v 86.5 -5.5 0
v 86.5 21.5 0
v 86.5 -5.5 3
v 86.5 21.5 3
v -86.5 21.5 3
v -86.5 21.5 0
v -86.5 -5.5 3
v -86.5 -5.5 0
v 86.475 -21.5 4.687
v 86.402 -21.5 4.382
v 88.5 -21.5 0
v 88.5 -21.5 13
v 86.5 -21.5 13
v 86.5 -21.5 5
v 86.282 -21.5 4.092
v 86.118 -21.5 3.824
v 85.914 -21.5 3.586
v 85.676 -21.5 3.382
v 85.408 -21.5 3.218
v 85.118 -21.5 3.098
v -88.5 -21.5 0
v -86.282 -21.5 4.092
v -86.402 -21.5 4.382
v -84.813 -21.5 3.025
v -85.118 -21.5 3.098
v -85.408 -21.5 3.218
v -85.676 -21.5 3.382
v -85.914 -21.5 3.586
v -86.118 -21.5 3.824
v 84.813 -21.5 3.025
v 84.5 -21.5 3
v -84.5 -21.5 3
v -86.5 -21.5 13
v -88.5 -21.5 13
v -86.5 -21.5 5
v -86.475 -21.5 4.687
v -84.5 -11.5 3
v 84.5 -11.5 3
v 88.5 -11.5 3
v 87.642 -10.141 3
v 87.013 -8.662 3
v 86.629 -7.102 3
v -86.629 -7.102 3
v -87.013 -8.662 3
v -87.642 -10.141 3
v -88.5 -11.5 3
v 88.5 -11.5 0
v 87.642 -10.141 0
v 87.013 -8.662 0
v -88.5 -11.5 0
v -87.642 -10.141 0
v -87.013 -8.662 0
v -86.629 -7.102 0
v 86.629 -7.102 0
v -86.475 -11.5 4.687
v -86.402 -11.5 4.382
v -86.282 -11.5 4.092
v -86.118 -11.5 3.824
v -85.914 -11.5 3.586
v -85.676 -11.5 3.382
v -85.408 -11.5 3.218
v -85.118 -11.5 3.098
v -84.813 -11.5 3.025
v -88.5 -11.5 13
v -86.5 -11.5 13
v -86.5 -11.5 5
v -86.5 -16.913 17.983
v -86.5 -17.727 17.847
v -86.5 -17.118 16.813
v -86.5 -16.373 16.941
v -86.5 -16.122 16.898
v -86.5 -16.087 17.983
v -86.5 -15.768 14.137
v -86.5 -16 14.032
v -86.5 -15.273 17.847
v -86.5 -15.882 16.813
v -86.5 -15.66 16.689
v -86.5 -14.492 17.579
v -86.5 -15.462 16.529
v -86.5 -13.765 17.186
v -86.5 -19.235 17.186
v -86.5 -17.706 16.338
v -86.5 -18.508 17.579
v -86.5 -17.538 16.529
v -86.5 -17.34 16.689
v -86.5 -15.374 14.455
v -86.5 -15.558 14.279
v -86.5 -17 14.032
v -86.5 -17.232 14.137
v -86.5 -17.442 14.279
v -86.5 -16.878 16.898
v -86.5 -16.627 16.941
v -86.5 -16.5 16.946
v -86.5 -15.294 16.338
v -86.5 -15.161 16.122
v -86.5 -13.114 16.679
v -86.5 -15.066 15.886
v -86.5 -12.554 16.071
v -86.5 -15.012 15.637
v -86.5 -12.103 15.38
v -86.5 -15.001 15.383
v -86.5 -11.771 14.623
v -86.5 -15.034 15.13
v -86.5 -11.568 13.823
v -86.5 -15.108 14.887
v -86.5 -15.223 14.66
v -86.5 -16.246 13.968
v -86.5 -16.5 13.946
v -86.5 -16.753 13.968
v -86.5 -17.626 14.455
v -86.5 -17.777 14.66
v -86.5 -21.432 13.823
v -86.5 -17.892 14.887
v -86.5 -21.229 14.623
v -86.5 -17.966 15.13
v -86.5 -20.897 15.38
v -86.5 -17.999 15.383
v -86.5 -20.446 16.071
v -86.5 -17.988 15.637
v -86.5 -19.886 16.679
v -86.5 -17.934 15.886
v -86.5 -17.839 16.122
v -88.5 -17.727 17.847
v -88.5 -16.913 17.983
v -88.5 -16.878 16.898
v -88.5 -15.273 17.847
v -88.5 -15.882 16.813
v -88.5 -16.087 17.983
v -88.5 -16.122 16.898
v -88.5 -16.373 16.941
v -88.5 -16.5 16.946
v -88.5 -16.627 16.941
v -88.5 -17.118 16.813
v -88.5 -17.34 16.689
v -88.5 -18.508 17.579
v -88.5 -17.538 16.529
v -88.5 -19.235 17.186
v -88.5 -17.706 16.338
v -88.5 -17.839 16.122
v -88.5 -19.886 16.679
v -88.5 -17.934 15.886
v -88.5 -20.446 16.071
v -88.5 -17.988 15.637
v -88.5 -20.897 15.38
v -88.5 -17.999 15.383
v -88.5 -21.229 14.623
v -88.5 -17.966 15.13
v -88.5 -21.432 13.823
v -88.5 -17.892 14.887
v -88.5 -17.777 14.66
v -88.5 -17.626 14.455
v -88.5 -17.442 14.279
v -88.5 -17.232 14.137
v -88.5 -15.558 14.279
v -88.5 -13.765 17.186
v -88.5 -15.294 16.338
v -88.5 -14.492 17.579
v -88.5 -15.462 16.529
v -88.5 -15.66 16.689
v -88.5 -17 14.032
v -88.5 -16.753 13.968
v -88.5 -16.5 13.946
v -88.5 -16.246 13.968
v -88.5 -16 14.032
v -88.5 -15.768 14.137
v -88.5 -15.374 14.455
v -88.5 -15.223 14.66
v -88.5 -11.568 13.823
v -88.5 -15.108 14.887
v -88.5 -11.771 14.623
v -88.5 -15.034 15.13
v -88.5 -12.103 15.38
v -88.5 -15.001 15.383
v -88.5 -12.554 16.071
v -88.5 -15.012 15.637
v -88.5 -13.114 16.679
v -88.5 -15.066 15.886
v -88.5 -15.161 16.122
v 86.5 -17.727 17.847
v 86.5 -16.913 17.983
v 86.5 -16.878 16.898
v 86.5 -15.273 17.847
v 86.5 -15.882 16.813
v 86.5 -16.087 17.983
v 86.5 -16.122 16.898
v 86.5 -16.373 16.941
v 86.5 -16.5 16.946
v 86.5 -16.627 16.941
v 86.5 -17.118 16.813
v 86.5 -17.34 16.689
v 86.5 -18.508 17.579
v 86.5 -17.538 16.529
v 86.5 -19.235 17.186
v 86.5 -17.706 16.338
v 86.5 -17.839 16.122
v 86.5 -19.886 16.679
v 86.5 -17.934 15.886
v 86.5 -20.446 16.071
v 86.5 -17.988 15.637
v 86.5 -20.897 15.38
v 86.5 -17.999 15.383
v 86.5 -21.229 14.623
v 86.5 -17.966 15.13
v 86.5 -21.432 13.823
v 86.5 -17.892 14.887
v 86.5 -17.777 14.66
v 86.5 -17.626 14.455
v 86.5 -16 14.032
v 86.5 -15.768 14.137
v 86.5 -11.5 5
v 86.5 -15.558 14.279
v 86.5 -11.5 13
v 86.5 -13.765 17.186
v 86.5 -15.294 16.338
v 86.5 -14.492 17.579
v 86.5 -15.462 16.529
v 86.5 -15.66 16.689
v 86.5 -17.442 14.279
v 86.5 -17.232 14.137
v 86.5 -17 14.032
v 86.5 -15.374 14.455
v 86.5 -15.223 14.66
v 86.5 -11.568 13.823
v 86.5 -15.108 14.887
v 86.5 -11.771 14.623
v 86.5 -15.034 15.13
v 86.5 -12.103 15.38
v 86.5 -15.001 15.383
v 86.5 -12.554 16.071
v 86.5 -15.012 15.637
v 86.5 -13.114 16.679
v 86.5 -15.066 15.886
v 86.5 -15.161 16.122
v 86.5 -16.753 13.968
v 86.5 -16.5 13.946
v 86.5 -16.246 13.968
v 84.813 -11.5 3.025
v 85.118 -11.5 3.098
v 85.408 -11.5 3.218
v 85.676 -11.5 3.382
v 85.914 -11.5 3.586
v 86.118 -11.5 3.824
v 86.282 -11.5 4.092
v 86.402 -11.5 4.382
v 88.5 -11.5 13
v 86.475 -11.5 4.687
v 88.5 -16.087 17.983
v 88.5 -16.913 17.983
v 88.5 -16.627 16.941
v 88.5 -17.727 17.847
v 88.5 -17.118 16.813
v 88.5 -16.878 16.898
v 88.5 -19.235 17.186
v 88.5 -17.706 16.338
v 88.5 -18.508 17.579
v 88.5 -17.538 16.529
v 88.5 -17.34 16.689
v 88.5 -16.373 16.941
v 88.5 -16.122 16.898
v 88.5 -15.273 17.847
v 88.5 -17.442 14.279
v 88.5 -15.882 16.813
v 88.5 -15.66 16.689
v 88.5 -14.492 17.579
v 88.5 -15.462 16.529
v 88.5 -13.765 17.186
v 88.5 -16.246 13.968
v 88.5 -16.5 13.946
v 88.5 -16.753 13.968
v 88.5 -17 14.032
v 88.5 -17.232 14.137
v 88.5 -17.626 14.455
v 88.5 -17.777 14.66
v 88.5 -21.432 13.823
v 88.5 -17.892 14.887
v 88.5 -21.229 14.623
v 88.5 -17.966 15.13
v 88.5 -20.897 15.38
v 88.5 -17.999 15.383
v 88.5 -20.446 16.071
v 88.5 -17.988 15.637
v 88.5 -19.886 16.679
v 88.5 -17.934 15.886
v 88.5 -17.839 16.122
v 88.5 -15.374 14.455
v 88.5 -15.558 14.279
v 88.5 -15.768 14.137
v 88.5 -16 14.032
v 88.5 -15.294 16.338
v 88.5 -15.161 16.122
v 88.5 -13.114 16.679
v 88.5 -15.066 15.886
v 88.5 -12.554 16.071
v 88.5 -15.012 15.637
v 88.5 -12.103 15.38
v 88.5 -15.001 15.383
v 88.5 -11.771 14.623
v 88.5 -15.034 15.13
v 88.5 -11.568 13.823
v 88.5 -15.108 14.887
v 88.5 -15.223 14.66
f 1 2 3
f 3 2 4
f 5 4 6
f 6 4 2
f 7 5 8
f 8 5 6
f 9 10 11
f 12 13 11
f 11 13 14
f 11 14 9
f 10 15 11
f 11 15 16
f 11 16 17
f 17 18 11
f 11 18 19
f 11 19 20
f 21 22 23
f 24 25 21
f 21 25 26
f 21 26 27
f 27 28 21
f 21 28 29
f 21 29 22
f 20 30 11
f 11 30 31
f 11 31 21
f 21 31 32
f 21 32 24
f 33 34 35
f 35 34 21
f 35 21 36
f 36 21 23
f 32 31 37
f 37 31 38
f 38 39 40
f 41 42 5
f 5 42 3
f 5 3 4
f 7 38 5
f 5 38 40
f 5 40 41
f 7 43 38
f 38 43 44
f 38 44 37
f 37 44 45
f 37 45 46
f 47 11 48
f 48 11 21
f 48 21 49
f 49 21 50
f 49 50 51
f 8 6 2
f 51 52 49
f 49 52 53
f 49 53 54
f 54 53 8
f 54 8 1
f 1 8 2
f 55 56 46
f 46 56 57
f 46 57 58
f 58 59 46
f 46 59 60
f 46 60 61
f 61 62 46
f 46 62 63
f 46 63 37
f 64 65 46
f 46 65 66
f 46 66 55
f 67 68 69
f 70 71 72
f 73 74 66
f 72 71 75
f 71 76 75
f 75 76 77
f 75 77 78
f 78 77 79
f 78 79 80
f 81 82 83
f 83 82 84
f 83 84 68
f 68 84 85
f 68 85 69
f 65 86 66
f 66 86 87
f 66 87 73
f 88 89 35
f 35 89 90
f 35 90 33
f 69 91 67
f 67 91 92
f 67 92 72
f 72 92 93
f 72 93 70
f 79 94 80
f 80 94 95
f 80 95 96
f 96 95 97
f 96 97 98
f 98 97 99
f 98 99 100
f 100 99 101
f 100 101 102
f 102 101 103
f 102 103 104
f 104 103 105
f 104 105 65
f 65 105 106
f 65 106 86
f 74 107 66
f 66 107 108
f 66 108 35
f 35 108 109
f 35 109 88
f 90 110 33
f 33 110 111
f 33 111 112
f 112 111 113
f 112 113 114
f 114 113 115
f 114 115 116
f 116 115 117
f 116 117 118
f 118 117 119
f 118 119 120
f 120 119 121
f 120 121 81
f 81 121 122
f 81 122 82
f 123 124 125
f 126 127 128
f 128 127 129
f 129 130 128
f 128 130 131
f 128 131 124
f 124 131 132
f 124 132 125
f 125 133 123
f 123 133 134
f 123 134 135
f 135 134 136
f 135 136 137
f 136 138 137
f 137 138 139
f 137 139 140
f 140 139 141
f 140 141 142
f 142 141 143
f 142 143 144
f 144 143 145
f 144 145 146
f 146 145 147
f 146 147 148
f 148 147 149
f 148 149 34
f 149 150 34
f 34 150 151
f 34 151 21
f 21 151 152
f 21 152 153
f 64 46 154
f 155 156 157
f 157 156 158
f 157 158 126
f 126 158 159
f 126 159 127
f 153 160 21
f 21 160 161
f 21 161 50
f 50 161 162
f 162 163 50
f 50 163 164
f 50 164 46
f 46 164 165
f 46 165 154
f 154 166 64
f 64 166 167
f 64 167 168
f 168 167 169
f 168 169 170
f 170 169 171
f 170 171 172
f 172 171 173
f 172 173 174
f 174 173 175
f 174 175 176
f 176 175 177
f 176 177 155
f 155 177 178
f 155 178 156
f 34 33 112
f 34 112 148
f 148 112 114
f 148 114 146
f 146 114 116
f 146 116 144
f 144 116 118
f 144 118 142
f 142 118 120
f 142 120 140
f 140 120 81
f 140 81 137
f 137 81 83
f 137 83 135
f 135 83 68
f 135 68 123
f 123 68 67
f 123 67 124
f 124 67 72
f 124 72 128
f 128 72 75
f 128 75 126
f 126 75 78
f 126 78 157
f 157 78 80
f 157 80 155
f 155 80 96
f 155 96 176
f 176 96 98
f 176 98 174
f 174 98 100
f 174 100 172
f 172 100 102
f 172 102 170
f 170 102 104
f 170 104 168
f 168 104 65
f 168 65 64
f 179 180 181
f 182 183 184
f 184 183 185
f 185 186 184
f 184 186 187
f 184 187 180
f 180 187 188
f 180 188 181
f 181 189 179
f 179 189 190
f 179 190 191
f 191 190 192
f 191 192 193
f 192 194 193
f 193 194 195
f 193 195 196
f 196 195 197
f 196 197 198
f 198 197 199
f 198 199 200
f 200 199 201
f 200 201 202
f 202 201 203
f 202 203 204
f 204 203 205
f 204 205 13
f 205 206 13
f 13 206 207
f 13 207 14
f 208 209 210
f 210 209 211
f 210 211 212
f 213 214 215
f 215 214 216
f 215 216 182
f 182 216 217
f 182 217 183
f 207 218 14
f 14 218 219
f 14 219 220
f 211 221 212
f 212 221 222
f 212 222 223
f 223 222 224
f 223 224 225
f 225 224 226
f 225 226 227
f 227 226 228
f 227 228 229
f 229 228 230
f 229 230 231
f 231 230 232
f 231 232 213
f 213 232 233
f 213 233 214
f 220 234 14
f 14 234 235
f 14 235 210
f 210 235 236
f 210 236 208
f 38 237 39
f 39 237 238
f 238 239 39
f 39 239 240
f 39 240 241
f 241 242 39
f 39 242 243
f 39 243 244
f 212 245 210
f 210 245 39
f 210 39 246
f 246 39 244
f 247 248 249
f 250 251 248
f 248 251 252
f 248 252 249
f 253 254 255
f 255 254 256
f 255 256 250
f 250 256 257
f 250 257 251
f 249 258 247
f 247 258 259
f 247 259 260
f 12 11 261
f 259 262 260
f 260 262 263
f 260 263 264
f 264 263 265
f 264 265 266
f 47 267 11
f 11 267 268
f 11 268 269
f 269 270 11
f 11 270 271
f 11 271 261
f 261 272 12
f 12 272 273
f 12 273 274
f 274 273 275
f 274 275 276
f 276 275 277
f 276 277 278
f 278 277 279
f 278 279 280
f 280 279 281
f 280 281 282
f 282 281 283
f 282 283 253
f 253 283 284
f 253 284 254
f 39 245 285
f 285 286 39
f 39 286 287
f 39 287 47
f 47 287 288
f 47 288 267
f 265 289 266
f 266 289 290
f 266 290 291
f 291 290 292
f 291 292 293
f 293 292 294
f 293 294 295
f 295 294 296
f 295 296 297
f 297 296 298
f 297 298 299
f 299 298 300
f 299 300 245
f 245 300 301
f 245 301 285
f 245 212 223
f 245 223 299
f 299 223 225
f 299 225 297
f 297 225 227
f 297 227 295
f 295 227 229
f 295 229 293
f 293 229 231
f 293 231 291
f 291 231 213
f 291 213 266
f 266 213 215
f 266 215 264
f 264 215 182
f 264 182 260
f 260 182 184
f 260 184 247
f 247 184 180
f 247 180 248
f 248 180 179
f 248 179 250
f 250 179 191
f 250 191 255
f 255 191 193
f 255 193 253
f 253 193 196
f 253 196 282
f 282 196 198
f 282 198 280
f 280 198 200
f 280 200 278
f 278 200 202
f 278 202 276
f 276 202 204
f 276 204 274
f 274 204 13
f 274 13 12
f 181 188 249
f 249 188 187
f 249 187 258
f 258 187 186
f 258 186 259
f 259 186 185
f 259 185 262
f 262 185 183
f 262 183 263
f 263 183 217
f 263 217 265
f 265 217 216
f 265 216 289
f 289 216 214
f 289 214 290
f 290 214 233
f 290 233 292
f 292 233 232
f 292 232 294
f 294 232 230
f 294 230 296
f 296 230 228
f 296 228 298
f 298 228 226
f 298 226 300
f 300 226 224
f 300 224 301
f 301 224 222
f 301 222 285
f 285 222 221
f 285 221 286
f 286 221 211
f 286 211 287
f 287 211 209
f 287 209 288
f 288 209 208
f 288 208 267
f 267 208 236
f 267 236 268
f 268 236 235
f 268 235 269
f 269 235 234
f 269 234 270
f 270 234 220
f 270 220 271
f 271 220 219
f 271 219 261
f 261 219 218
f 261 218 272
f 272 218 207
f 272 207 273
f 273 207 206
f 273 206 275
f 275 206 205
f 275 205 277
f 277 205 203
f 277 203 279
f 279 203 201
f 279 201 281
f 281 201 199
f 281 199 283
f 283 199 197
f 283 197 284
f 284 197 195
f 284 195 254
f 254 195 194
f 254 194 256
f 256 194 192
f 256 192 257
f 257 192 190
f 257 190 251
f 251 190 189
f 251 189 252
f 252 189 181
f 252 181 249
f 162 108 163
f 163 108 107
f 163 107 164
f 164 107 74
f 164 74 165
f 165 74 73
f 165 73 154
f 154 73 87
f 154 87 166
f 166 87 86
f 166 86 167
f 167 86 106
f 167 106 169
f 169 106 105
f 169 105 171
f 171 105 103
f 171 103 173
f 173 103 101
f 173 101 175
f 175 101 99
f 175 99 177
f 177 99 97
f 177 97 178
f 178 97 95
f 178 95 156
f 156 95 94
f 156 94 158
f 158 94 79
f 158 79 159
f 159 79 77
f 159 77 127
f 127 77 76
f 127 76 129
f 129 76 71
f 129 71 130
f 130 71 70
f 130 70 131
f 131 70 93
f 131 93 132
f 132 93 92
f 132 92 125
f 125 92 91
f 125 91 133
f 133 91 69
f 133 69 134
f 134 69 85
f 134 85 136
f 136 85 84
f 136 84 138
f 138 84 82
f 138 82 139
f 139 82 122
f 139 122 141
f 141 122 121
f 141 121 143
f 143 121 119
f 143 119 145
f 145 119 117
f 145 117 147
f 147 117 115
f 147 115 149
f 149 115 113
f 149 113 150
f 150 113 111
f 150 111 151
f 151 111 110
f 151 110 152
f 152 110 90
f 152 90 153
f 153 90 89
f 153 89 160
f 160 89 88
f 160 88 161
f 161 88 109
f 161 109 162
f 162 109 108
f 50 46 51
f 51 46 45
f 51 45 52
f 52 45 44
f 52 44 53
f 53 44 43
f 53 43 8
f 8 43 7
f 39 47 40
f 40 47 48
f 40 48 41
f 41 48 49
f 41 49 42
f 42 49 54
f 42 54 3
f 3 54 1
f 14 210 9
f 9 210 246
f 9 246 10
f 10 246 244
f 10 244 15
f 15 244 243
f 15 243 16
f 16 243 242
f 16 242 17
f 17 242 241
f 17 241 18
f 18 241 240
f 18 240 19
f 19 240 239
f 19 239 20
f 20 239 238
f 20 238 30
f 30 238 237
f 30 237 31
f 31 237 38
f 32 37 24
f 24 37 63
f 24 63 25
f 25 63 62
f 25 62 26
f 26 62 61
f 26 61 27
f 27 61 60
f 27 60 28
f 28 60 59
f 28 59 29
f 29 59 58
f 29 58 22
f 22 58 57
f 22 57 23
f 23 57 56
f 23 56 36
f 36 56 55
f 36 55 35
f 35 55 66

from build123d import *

# Parameters (mm, degrees)
SKETCH1_W           = 173
SKETCH1_H           = 43
BOSS_EXTRUDE1_DEPTH = 3
SKETCH2_R           = 5
SKETCH2_W           = 13
SKETCH2_H           = 10
BOSS_EXTRUDE2_DEPTH = 2
BOSS_EXTRUDE3_START = 2
SKETCH3_R           = 5
SKETCH3_W           = 13
SKETCH3_H           = 10
BOSS_EXTRUDE3_DEPTH = 2
SKETCH4_R           = 1.5
CUT_EXTRUDE1_DEPTH  = 200
FILLET1_R           = 10
FILLET2_R           = 2


with BuildPart() as part:
    # Sketch1 → Boss-Extrude1 (new body)
    with BuildSketch(Plane.XY):
        Rectangle(SKETCH1_W, SKETCH1_H)
    extrude(amount=BOSS_EXTRUDE1_DEPTH)

    # Sketch2 → Boss-Extrude2 (add)
    with BuildSketch(Plane.ZY.offset(86.5)):
        with Locations((13, -16.5)):
            Circle(SKETCH2_R)
        with Locations((6.5, -16.5)):
            Rectangle(SKETCH2_W, SKETCH2_H)
    extrude(amount=BOSS_EXTRUDE2_DEPTH)

    # Sketch3 → Boss-Extrude3 (add)
    with BuildSketch(Plane(origin=(86.5, 0, 0), x_dir=(0, 0, -1), z_dir=(1, 0, 0)).offset(BOSS_EXTRUDE3_START)):
        with Locations((-13, -16.5)):
            Circle(SKETCH3_R)
        with Locations((-6.5, -16.5)):
            Rectangle(SKETCH3_W, SKETCH3_H)
    extrude(amount=-BOSS_EXTRUDE3_DEPTH)

    # Sketch4 → Cut-Extrude1 (cut)
    with BuildSketch(Plane(origin=(88.5, 0, 0), x_dir=(0, 0, -1), z_dir=(1, 0, 0))):
        with Locations((-15.446473159, -16.5)):
            Circle(SKETCH4_R)
    extrude(amount=-CUT_EXTRUDE1_DEPTH, mode=Mode.SUBTRACT)

    # Fillet1
    # the kernel refuses this fillet: 10 mm, written as the material it adds along each edge
    with BuildSketch(Plane(origin=(-86.5, -11.5, 3), x_dir=(0, 1, 0), z_dir=(0, 0, -1))) as fillet1_piece_1:
        with BuildLine():
            CenterArc((6, -10), FILLET1_R, 90, 36.869897646)
            Line((0, -2), (0, 0))
            Line((0, 0), (6, 0))
        make_face()
    extrude(amount=3)
    with BuildSketch(Plane(origin=(86.5, -11.5, 3), x_dir=(0, 1, 0), z_dir=(0, 0, -1))) as fillet1_piece_2:
        with BuildLine():
            CenterArc((6, 10), FILLET1_R, 233.130102354, 36.869897646)
            Line((0, 2), (0, 0))
            Line((0, 0), (6, 0))
        make_face()
    extrude(amount=3)

    # Fillet2
    fillet2_edges = [part.edges().sort_by_distance(p)[0] for p in [
        (-86.5, -16.5, 3),
        (86.5, -16.5, 3),
    ]]
    fillet(fillet2_edges, radius=FILLET2_R)


solid = part.part
